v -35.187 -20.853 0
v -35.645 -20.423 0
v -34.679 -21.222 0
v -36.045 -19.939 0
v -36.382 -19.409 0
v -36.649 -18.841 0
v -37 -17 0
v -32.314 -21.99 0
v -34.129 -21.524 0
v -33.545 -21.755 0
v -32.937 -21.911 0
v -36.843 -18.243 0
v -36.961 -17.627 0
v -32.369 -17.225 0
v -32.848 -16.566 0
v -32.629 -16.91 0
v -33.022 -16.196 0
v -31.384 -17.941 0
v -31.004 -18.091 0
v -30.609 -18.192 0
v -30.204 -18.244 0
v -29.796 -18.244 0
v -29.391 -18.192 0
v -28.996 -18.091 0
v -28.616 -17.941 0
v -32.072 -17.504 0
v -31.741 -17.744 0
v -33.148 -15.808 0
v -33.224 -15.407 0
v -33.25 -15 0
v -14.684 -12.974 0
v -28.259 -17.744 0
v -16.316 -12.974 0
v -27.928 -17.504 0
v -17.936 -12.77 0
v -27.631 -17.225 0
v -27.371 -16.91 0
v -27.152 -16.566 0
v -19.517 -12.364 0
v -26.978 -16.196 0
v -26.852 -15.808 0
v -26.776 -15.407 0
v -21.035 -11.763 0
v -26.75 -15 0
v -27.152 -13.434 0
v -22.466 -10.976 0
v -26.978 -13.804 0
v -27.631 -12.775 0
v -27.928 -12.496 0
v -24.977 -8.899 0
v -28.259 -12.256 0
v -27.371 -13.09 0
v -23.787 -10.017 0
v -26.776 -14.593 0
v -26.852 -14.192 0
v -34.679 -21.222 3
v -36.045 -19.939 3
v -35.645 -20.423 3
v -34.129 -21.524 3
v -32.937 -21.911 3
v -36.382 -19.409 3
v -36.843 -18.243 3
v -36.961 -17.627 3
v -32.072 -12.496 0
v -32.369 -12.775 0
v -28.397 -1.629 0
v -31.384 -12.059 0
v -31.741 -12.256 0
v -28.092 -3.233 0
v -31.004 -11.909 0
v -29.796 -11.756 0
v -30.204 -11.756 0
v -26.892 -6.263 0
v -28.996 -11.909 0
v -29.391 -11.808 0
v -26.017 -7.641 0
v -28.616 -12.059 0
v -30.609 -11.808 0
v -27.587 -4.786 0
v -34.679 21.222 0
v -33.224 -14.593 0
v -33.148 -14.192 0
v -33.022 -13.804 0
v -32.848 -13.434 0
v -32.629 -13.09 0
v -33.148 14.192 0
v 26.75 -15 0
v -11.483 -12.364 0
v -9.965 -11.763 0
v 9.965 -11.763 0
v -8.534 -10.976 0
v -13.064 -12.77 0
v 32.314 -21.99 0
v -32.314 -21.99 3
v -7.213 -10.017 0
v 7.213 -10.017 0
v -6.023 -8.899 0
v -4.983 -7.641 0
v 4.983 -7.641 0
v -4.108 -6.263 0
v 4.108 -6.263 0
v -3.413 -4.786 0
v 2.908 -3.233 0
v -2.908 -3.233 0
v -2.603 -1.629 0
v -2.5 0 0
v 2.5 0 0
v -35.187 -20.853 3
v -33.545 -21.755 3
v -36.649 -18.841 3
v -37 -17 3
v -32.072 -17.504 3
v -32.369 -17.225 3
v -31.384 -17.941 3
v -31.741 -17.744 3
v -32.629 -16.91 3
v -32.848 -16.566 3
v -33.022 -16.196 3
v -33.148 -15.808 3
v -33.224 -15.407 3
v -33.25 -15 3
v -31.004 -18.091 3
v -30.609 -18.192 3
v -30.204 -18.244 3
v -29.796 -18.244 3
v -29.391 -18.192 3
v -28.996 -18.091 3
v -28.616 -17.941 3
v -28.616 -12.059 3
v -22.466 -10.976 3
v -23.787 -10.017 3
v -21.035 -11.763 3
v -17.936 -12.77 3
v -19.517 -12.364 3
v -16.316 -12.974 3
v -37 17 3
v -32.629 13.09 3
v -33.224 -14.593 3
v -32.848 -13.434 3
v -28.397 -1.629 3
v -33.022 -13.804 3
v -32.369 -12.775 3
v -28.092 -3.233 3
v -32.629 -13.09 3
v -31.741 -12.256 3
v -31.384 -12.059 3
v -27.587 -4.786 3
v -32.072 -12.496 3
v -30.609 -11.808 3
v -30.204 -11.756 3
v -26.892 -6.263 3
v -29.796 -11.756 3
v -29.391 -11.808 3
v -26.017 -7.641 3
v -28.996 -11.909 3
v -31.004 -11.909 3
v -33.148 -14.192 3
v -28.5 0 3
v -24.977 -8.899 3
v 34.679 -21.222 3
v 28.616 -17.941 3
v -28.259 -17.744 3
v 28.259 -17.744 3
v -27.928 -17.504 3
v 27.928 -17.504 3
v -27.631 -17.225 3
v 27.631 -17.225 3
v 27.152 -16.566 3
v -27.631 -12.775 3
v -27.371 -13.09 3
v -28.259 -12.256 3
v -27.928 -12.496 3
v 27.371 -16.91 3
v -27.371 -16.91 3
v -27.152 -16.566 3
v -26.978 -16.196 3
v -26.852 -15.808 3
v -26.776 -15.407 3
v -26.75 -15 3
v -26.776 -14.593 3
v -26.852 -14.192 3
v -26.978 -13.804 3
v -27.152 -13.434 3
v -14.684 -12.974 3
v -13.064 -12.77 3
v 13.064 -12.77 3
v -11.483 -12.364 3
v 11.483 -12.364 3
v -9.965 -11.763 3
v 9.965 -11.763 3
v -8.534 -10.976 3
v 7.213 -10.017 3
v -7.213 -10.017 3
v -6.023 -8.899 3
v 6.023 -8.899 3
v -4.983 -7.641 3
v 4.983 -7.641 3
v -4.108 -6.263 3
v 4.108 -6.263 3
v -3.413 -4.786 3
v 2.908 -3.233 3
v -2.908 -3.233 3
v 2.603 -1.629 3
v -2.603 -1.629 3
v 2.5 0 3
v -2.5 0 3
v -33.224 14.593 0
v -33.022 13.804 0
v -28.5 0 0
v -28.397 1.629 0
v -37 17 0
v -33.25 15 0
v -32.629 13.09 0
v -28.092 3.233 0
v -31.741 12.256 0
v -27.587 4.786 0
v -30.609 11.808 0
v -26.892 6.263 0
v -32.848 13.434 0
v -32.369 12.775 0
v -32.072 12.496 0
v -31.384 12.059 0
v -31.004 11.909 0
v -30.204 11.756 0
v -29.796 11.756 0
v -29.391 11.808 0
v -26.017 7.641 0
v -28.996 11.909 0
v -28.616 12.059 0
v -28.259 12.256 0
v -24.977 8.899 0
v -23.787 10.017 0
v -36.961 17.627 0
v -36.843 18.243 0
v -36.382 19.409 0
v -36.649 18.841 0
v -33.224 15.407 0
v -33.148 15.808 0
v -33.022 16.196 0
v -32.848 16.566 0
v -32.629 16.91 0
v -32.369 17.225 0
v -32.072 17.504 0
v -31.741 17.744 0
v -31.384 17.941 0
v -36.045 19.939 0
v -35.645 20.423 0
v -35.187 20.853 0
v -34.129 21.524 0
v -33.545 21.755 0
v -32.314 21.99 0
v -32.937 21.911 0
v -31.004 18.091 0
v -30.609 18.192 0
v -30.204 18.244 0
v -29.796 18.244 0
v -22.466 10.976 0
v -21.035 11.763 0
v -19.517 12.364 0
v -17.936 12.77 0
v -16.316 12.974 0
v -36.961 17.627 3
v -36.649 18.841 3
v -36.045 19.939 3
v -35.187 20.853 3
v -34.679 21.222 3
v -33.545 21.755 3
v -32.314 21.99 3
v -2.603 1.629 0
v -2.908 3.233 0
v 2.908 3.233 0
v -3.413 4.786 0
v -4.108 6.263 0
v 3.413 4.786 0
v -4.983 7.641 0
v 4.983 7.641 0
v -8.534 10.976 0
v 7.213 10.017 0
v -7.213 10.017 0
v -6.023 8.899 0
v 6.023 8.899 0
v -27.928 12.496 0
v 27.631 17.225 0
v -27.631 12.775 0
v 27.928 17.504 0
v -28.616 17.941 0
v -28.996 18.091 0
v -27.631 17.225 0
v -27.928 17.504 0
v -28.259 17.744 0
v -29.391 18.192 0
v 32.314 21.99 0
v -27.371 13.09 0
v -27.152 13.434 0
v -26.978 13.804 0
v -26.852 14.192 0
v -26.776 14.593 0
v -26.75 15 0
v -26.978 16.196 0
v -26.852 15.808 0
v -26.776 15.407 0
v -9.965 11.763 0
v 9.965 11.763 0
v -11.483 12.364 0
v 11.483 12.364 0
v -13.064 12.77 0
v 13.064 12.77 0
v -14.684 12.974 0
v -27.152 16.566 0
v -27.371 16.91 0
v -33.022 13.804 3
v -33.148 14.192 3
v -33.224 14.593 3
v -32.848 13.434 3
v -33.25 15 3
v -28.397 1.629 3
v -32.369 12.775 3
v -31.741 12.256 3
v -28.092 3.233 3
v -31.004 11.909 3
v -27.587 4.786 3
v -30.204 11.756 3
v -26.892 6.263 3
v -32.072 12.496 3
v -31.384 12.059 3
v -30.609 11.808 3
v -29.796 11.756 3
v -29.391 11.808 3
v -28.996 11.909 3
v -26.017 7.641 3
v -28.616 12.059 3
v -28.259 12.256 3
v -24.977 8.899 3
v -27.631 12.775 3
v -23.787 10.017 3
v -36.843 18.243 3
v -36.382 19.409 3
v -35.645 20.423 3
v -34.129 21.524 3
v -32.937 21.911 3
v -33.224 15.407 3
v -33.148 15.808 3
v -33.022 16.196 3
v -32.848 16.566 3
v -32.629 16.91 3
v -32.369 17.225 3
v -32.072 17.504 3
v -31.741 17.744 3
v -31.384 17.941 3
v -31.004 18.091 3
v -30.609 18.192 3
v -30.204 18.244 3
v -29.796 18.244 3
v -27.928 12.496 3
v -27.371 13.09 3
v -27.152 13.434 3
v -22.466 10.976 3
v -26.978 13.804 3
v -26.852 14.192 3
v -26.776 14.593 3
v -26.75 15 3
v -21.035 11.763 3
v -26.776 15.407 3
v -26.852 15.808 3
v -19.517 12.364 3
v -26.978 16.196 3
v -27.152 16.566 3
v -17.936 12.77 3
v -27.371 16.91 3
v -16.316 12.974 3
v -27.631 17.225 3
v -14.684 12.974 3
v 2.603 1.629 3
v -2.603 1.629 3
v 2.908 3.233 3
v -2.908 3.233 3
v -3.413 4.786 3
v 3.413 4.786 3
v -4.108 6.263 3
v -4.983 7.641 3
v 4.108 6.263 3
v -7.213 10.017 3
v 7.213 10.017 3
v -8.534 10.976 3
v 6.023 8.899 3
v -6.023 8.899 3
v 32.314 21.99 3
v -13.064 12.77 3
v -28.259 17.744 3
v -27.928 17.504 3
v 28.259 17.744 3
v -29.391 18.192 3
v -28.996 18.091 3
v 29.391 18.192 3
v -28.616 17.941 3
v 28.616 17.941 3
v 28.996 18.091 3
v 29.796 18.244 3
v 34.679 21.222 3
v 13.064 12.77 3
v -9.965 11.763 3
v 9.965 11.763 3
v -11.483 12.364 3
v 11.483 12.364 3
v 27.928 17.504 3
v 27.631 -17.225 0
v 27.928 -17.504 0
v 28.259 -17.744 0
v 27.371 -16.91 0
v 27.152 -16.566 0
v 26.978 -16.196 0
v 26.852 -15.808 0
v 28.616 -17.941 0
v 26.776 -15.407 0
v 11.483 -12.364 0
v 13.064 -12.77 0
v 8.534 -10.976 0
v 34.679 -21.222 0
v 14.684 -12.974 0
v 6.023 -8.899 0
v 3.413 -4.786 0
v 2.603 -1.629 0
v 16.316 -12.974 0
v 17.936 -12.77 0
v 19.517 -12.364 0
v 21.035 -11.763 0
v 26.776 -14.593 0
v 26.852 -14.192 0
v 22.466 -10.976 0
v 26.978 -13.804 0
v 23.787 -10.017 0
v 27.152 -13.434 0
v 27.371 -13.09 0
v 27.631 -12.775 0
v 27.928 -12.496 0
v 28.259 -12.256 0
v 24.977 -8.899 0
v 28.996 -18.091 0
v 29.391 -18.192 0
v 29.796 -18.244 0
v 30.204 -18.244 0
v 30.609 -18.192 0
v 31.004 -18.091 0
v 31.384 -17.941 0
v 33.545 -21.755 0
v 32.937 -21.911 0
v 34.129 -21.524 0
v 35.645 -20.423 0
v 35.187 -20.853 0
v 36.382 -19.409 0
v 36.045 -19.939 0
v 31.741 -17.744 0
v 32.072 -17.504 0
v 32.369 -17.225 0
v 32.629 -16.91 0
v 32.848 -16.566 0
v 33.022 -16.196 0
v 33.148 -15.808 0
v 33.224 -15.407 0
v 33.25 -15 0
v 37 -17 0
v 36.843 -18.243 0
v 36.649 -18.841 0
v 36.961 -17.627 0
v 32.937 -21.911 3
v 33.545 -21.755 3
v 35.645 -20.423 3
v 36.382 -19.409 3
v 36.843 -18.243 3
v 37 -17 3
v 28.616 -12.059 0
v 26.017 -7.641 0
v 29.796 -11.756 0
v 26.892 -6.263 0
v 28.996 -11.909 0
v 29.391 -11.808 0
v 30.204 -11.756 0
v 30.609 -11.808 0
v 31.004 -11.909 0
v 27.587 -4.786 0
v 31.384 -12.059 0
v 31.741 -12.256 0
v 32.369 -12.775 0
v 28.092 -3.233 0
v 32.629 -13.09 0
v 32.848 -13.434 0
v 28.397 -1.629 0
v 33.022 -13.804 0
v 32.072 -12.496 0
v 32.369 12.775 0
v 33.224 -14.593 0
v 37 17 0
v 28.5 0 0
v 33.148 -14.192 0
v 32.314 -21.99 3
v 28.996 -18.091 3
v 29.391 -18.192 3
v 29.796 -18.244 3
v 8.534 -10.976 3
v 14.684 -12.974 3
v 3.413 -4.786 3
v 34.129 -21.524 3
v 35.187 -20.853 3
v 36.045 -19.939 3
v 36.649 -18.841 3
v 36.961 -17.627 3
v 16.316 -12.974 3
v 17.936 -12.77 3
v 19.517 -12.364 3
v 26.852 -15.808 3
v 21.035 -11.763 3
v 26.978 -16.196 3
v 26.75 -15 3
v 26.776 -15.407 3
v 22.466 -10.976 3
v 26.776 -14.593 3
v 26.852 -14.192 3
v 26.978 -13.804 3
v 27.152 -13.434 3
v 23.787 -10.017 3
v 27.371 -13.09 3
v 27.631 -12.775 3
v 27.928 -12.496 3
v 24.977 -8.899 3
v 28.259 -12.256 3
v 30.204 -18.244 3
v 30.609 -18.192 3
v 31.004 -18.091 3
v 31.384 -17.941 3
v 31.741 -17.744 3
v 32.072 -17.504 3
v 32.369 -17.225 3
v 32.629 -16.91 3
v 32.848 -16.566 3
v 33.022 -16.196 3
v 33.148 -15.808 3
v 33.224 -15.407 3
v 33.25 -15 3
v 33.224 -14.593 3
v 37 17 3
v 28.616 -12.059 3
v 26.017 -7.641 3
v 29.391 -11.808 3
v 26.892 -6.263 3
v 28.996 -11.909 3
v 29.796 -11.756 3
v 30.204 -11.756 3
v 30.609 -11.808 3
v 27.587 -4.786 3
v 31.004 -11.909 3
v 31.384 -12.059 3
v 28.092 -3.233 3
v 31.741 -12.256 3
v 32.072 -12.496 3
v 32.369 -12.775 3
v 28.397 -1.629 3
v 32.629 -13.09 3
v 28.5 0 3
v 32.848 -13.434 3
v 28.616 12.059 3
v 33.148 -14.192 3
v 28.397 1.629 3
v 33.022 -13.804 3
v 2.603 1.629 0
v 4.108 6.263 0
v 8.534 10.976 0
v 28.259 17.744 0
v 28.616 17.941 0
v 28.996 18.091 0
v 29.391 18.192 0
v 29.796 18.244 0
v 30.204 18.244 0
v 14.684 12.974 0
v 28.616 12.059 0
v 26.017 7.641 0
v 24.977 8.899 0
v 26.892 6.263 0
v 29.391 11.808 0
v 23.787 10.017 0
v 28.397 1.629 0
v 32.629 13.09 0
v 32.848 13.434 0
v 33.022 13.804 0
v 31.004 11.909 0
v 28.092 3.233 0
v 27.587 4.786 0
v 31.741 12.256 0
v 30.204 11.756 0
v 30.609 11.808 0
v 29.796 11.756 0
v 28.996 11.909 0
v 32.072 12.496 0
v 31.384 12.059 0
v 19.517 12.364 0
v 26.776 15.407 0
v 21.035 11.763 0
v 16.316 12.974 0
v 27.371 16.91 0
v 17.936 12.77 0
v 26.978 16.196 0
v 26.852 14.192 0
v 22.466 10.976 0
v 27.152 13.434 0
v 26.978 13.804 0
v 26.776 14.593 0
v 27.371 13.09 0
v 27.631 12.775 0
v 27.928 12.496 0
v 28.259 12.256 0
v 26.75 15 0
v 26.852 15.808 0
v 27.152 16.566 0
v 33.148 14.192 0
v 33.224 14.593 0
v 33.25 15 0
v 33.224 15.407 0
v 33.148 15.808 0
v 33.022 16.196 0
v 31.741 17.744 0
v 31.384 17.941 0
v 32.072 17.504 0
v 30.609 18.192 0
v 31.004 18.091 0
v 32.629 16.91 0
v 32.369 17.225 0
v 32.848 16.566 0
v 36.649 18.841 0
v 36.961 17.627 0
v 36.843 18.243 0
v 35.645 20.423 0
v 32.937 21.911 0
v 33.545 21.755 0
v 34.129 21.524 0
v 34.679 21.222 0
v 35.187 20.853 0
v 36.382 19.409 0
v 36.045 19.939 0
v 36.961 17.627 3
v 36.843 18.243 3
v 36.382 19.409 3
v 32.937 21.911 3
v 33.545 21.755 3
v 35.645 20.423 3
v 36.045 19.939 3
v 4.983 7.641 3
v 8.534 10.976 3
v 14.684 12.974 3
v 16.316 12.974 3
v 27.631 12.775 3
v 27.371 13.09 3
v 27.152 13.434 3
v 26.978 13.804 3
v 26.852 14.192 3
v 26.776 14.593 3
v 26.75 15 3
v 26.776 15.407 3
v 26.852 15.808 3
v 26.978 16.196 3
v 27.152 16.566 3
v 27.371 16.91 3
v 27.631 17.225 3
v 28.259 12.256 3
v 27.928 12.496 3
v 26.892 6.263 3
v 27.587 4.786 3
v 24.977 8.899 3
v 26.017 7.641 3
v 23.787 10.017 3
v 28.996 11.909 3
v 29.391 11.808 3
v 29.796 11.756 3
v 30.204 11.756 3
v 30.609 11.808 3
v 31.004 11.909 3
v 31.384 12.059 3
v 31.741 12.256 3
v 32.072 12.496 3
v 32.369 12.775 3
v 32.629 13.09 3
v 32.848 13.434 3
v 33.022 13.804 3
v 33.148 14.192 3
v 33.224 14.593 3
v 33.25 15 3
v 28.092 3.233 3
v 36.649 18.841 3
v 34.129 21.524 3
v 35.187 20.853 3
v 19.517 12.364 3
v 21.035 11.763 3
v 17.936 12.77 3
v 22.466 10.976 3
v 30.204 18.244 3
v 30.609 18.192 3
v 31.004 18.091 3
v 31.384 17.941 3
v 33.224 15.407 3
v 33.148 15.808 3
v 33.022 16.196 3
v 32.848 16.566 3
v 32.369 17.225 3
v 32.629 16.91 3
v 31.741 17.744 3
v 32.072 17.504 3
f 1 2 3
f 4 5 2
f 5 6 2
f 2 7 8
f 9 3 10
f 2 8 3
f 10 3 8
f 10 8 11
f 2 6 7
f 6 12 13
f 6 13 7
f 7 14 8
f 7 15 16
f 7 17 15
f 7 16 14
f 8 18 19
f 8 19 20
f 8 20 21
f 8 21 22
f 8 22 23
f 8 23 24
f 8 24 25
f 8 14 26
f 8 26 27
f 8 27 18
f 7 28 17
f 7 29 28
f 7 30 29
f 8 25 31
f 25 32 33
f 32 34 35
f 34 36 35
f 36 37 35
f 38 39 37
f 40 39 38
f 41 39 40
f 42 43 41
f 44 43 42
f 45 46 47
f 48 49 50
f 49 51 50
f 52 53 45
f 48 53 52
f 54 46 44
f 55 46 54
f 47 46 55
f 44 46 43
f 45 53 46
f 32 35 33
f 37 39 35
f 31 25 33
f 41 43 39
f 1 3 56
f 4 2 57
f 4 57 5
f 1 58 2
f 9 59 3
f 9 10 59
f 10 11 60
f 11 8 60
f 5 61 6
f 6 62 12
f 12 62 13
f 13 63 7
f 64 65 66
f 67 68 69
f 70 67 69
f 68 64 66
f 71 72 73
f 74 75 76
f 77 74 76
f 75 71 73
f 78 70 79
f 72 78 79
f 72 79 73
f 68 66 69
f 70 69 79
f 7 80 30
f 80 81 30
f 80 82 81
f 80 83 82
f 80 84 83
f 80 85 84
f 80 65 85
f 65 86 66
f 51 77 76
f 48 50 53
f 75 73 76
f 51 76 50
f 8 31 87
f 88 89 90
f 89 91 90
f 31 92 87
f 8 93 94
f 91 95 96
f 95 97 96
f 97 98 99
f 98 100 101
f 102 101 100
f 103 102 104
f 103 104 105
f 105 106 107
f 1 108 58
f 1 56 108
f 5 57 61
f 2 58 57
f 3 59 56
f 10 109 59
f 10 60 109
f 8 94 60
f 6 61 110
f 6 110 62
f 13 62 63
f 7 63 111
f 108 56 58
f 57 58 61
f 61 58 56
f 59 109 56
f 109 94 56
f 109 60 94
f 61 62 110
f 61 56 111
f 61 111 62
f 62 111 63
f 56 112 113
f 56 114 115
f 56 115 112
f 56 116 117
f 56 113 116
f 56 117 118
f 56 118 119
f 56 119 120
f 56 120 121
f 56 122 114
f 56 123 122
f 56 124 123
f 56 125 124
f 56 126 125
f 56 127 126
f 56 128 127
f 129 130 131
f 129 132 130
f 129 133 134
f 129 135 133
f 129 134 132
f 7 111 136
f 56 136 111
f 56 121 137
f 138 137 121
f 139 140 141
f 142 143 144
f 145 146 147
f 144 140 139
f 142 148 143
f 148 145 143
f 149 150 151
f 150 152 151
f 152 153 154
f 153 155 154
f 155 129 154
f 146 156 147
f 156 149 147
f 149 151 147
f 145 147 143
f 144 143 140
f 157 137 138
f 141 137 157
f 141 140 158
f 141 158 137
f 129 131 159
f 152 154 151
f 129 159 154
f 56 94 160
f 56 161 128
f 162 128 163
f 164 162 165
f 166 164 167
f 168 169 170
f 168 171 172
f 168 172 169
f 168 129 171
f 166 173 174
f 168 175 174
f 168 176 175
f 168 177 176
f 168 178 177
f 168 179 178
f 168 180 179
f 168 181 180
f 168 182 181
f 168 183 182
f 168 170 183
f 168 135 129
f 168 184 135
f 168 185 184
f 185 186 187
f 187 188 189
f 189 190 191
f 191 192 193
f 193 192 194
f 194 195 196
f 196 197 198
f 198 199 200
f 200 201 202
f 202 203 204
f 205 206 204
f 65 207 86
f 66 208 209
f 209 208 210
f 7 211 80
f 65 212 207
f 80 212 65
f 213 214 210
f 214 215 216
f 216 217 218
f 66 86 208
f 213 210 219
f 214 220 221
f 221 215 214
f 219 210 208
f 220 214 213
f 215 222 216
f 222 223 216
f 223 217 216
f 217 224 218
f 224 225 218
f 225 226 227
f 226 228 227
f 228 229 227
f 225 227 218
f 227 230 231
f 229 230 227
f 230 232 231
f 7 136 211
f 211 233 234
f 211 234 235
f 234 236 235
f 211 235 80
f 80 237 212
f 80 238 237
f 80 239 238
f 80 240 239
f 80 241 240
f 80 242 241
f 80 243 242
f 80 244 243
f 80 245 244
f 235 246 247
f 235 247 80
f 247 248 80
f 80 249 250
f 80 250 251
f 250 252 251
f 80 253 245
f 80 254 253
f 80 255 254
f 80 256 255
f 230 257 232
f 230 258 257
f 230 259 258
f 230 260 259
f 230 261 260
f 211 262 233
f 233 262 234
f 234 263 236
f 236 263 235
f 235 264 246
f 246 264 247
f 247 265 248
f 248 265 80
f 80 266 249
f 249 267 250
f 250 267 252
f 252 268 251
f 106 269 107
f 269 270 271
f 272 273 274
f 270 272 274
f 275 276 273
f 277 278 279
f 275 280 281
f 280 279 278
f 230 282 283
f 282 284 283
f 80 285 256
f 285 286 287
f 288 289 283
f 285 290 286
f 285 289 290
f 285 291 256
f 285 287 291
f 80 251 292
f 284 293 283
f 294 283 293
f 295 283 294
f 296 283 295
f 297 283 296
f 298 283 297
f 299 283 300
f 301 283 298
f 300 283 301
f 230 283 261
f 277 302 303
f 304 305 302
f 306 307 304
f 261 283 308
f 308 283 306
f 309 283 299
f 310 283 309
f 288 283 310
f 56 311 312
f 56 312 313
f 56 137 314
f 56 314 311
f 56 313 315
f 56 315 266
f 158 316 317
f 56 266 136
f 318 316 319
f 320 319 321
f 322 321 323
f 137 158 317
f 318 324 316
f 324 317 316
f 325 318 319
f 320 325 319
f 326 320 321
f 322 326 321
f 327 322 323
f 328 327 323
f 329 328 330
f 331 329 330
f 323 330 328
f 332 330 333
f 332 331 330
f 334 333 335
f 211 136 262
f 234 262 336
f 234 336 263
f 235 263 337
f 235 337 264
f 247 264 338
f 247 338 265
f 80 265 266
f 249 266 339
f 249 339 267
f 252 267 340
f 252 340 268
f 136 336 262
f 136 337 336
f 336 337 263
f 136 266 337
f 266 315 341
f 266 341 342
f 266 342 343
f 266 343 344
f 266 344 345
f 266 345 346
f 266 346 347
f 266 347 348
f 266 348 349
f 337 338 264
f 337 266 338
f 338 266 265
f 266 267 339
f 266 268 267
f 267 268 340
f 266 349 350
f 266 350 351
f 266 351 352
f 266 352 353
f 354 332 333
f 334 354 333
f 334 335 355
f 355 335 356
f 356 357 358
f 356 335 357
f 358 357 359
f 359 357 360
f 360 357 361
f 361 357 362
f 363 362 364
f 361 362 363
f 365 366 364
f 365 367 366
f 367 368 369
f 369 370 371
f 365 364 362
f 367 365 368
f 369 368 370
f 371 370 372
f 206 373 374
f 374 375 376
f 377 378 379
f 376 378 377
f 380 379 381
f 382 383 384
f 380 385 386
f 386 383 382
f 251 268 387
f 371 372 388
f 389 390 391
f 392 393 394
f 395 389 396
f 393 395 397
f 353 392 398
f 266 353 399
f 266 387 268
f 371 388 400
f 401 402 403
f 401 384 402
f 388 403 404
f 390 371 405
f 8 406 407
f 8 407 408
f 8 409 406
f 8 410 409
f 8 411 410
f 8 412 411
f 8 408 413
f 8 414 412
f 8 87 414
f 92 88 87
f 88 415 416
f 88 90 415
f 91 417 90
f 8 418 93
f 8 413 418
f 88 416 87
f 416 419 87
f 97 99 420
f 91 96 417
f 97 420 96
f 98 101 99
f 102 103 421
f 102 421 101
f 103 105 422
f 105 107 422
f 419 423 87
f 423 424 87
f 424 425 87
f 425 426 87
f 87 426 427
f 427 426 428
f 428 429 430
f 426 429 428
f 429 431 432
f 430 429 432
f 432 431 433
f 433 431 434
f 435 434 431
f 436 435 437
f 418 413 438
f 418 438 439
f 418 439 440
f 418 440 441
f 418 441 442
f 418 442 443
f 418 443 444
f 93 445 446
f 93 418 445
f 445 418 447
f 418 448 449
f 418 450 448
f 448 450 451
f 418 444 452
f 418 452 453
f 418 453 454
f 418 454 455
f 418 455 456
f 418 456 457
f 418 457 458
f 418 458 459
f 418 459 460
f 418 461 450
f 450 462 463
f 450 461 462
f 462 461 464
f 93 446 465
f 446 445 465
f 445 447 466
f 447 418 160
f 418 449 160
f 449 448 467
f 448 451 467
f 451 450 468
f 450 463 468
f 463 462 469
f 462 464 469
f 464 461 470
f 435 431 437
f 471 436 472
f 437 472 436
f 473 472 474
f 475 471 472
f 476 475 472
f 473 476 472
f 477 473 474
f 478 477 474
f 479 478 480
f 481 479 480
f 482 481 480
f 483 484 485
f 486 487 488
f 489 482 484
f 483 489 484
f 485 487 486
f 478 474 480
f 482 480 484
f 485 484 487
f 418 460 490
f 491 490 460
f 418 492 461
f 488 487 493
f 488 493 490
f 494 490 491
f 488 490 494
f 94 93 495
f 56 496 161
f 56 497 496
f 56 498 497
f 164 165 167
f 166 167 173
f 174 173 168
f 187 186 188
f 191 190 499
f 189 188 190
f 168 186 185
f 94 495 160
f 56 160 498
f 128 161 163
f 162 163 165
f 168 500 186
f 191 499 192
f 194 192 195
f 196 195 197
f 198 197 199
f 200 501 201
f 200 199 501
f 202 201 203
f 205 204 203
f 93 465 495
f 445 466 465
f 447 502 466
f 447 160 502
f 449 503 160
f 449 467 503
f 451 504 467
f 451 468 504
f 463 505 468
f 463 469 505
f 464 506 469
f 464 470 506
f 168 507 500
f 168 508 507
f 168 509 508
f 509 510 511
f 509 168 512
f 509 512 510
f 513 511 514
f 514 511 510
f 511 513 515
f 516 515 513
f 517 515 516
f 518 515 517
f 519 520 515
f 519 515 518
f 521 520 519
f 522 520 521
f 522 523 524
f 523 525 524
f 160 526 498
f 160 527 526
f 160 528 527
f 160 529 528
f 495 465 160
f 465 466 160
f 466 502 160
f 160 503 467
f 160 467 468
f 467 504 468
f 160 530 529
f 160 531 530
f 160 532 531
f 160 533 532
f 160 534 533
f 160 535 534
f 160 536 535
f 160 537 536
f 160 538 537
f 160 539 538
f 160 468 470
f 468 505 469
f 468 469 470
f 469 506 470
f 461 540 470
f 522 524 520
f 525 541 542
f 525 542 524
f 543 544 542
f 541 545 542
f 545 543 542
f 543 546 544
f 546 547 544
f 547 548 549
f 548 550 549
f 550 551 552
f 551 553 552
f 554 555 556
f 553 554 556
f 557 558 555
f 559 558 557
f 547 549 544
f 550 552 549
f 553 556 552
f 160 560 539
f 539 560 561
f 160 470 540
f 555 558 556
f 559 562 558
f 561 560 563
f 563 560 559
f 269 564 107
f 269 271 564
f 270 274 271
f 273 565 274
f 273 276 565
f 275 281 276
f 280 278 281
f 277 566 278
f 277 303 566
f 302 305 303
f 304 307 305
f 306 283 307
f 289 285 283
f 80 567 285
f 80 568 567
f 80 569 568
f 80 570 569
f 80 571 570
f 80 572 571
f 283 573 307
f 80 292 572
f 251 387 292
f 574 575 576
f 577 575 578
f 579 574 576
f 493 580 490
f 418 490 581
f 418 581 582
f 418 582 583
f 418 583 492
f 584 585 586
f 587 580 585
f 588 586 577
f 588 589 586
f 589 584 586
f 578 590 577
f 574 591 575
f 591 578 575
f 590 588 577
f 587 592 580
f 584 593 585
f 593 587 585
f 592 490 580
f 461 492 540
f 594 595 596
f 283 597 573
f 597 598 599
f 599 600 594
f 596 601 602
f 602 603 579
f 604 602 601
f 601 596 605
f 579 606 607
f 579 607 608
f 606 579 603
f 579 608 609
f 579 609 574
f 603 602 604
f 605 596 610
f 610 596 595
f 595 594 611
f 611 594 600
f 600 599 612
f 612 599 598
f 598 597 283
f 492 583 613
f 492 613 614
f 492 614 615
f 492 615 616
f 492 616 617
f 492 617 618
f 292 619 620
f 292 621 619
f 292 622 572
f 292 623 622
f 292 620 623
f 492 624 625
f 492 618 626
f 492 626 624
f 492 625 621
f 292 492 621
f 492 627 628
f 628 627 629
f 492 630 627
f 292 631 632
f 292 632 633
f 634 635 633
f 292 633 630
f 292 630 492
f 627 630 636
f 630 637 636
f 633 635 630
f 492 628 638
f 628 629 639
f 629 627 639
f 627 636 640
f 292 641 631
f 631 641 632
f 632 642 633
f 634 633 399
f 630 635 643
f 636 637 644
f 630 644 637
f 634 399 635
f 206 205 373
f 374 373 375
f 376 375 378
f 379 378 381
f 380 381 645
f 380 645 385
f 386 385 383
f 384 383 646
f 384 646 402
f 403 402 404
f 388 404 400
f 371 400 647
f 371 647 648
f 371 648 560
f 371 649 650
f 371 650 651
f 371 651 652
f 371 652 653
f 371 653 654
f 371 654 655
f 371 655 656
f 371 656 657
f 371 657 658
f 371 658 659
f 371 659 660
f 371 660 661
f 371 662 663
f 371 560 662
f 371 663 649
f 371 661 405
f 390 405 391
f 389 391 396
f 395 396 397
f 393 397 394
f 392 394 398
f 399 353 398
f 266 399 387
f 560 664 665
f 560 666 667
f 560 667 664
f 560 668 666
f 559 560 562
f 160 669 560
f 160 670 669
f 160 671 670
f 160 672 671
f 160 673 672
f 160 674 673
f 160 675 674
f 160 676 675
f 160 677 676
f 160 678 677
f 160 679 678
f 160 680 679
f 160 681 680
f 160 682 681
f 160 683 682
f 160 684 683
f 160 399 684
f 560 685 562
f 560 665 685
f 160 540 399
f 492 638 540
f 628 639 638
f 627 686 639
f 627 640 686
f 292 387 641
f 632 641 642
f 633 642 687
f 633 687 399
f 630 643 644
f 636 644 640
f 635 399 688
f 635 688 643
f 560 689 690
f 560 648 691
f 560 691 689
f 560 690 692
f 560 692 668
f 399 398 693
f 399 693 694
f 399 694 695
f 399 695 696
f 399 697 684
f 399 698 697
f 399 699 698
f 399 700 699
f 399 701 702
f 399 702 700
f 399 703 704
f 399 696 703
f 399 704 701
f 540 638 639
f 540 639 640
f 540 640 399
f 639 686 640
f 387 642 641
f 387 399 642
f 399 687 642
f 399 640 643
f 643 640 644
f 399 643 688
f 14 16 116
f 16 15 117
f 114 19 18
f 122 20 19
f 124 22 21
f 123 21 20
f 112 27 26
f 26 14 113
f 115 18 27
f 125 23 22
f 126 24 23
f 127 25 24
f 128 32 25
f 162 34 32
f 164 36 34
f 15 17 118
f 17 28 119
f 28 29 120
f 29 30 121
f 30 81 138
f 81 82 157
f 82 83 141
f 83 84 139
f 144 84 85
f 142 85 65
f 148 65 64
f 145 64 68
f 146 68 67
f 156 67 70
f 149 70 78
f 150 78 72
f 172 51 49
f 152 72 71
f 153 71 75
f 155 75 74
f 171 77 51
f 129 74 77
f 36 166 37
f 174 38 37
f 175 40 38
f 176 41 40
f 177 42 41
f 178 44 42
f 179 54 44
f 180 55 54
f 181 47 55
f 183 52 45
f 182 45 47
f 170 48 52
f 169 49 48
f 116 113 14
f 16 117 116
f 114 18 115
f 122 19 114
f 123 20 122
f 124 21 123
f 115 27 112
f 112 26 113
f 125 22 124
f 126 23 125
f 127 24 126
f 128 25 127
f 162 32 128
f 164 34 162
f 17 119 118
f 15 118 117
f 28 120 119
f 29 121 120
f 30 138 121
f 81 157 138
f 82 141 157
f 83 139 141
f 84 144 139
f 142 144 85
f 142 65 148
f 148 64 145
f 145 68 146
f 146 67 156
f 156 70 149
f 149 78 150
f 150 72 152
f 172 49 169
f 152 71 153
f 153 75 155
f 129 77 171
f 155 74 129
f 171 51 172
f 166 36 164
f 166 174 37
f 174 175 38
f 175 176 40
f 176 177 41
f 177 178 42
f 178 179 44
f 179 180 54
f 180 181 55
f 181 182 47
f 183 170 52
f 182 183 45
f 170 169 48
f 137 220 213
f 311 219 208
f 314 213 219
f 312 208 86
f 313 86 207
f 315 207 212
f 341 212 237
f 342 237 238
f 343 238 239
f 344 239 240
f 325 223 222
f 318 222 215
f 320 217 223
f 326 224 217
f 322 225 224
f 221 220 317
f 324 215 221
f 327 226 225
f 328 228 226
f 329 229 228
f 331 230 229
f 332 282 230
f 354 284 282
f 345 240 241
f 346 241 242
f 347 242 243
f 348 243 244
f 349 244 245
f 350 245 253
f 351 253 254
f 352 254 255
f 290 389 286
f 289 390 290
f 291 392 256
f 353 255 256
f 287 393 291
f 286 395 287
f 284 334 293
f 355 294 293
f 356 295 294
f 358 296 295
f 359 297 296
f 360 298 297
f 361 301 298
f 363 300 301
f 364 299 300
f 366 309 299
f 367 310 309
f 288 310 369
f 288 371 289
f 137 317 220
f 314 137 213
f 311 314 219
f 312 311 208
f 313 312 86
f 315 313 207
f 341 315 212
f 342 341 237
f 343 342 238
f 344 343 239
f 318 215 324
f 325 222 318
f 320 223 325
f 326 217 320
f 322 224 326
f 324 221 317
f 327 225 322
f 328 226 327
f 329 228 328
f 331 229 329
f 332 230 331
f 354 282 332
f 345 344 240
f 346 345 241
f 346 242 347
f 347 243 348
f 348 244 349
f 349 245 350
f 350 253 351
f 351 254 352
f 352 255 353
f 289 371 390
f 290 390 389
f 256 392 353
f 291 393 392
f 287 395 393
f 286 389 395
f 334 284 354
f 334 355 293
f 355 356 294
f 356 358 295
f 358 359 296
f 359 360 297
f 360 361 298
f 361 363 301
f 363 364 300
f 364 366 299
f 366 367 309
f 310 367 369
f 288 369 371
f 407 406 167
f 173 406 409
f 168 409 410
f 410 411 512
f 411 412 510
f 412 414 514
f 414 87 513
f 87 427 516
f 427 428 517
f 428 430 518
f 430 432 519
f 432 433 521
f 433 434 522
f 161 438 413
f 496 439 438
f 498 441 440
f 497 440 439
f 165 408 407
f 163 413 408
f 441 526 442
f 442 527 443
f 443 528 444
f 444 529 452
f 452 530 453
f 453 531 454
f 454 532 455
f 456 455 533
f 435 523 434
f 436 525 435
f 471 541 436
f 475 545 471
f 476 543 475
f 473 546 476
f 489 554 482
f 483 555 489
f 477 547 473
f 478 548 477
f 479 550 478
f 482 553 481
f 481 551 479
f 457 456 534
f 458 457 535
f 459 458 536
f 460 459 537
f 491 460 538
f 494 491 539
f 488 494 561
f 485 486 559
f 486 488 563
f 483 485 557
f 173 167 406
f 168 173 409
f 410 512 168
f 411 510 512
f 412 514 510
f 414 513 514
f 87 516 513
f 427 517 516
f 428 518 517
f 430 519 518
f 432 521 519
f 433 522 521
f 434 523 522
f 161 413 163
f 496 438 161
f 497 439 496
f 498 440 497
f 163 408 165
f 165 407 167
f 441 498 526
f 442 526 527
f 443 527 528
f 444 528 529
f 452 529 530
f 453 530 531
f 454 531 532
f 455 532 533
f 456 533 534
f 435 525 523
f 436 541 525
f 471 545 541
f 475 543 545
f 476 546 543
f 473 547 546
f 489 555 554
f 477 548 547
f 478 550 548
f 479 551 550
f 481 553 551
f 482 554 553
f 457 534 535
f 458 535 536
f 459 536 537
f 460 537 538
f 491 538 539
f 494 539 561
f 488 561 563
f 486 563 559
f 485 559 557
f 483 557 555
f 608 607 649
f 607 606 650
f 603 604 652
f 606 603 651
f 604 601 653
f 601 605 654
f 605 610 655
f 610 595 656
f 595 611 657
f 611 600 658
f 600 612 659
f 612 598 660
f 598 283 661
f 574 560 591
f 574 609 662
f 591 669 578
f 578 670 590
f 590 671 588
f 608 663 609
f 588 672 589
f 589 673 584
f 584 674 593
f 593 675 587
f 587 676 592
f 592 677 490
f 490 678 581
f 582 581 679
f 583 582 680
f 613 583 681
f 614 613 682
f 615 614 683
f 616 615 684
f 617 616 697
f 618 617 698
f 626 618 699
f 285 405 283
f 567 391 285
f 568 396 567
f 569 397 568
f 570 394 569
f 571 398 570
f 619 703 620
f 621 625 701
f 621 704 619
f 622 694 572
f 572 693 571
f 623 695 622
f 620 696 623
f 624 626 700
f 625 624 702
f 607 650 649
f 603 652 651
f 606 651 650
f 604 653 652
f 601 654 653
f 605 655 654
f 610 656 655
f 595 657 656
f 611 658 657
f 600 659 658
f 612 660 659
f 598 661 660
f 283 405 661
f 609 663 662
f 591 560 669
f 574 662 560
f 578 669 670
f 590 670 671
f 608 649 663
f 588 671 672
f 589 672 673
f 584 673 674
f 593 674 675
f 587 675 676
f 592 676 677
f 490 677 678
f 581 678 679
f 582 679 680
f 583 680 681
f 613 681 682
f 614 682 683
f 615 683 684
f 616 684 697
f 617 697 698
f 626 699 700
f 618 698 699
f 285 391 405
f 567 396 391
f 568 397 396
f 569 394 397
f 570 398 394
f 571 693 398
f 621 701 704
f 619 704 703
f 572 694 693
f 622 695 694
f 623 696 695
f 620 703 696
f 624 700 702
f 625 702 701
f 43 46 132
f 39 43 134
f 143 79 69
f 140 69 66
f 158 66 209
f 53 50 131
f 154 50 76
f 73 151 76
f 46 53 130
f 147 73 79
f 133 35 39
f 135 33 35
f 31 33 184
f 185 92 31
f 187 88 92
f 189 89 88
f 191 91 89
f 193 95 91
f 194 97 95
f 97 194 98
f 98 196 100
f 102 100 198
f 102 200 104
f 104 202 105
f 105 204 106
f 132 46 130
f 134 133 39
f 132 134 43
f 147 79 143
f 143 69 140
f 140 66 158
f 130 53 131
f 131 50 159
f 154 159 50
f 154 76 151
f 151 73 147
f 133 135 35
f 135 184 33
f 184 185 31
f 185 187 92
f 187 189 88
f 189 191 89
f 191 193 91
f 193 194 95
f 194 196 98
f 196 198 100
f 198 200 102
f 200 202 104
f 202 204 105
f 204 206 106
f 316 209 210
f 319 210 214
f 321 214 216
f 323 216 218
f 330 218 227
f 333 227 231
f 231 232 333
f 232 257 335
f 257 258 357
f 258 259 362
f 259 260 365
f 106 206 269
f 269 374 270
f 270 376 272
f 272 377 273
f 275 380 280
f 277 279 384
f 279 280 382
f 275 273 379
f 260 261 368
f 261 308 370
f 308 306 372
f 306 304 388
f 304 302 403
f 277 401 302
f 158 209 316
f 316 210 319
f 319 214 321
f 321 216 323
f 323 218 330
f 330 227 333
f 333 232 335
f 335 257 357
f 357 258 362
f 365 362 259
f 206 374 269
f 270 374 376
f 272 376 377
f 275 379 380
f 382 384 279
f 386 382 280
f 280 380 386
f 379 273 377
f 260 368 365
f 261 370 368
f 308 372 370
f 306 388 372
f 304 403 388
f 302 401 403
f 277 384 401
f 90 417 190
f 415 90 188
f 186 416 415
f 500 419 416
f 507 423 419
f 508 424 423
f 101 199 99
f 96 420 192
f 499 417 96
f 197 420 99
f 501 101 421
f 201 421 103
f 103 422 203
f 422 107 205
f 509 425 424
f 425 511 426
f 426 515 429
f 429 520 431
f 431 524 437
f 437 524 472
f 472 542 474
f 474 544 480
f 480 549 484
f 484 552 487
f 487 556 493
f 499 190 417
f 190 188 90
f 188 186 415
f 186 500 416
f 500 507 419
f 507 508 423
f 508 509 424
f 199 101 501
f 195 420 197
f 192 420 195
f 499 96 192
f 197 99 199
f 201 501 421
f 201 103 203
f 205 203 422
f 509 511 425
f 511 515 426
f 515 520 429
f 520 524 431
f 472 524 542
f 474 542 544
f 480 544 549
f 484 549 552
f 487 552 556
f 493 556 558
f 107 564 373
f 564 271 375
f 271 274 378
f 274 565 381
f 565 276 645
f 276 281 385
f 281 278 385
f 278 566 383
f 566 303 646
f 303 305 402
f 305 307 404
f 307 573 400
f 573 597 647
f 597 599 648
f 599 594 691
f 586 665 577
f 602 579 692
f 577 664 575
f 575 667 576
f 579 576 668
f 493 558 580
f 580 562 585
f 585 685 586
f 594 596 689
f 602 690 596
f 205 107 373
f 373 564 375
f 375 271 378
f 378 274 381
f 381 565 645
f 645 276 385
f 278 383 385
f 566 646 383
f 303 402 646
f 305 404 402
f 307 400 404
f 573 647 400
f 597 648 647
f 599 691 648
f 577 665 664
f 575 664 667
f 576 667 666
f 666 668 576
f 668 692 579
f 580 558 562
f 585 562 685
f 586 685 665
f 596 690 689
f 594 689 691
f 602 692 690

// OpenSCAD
$fn = 50;

difference() {
	union() {
		hull() {
			translate(v = [-32.0, 17.0, 0]) {
				cylinder(h = 3, r = 5);
			}
			translate(v = [32.0, 17.0, 0]) {
				cylinder(h = 3, r = 5);
			}
			translate(v = [-32.0, -17.0, 0]) {
				cylinder(h = 3, r = 5);
			}
			translate(v = [32.0, -17.0, 0]) {
				cylinder(h = 3, r = 5);
			}
		}
	}
	union() {
		translate(v = [-30.0, -15.0, -100.0]) {
			cylinder(h = 200, r = 3.25);
		}
		translate(v = [-30.0, 15.0, -100.0]) {
			cylinder(h = 200, r = 3.25);
		}
		translate(v = [30.0, -15.0, -100.0]) {
			cylinder(h = 200, r = 3.25);
		}
		translate(v = [30.0, 15.0, -100.0]) {
			cylinder(h = 200, r = 3.25);
		}
		translate(v = [-30.0, -15.0, -100.0]) {
			cylinder(h = 200, r = 1.8);
		}
		translate(v = [-30.0, 15.0, -100.0]) {
			cylinder(h = 200, r = 1.8);
		}
		translate(v = [30.0, -15.0, -100.0]) {
			cylinder(h = 200, r = 1.8);
		}
		translate(v = [30.0, 15.0, -100.0]) {
			cylinder(h = 200, r = 1.8);
		}
		translate(v = [-15.5, 0, 0.0]) {
			cylinder(h = 3, r = 13.0);
		}
		translate(v = [15.5, 0, 0.0]) {
			cylinder(h = 3, r = 13.0);
		}
	}
}
